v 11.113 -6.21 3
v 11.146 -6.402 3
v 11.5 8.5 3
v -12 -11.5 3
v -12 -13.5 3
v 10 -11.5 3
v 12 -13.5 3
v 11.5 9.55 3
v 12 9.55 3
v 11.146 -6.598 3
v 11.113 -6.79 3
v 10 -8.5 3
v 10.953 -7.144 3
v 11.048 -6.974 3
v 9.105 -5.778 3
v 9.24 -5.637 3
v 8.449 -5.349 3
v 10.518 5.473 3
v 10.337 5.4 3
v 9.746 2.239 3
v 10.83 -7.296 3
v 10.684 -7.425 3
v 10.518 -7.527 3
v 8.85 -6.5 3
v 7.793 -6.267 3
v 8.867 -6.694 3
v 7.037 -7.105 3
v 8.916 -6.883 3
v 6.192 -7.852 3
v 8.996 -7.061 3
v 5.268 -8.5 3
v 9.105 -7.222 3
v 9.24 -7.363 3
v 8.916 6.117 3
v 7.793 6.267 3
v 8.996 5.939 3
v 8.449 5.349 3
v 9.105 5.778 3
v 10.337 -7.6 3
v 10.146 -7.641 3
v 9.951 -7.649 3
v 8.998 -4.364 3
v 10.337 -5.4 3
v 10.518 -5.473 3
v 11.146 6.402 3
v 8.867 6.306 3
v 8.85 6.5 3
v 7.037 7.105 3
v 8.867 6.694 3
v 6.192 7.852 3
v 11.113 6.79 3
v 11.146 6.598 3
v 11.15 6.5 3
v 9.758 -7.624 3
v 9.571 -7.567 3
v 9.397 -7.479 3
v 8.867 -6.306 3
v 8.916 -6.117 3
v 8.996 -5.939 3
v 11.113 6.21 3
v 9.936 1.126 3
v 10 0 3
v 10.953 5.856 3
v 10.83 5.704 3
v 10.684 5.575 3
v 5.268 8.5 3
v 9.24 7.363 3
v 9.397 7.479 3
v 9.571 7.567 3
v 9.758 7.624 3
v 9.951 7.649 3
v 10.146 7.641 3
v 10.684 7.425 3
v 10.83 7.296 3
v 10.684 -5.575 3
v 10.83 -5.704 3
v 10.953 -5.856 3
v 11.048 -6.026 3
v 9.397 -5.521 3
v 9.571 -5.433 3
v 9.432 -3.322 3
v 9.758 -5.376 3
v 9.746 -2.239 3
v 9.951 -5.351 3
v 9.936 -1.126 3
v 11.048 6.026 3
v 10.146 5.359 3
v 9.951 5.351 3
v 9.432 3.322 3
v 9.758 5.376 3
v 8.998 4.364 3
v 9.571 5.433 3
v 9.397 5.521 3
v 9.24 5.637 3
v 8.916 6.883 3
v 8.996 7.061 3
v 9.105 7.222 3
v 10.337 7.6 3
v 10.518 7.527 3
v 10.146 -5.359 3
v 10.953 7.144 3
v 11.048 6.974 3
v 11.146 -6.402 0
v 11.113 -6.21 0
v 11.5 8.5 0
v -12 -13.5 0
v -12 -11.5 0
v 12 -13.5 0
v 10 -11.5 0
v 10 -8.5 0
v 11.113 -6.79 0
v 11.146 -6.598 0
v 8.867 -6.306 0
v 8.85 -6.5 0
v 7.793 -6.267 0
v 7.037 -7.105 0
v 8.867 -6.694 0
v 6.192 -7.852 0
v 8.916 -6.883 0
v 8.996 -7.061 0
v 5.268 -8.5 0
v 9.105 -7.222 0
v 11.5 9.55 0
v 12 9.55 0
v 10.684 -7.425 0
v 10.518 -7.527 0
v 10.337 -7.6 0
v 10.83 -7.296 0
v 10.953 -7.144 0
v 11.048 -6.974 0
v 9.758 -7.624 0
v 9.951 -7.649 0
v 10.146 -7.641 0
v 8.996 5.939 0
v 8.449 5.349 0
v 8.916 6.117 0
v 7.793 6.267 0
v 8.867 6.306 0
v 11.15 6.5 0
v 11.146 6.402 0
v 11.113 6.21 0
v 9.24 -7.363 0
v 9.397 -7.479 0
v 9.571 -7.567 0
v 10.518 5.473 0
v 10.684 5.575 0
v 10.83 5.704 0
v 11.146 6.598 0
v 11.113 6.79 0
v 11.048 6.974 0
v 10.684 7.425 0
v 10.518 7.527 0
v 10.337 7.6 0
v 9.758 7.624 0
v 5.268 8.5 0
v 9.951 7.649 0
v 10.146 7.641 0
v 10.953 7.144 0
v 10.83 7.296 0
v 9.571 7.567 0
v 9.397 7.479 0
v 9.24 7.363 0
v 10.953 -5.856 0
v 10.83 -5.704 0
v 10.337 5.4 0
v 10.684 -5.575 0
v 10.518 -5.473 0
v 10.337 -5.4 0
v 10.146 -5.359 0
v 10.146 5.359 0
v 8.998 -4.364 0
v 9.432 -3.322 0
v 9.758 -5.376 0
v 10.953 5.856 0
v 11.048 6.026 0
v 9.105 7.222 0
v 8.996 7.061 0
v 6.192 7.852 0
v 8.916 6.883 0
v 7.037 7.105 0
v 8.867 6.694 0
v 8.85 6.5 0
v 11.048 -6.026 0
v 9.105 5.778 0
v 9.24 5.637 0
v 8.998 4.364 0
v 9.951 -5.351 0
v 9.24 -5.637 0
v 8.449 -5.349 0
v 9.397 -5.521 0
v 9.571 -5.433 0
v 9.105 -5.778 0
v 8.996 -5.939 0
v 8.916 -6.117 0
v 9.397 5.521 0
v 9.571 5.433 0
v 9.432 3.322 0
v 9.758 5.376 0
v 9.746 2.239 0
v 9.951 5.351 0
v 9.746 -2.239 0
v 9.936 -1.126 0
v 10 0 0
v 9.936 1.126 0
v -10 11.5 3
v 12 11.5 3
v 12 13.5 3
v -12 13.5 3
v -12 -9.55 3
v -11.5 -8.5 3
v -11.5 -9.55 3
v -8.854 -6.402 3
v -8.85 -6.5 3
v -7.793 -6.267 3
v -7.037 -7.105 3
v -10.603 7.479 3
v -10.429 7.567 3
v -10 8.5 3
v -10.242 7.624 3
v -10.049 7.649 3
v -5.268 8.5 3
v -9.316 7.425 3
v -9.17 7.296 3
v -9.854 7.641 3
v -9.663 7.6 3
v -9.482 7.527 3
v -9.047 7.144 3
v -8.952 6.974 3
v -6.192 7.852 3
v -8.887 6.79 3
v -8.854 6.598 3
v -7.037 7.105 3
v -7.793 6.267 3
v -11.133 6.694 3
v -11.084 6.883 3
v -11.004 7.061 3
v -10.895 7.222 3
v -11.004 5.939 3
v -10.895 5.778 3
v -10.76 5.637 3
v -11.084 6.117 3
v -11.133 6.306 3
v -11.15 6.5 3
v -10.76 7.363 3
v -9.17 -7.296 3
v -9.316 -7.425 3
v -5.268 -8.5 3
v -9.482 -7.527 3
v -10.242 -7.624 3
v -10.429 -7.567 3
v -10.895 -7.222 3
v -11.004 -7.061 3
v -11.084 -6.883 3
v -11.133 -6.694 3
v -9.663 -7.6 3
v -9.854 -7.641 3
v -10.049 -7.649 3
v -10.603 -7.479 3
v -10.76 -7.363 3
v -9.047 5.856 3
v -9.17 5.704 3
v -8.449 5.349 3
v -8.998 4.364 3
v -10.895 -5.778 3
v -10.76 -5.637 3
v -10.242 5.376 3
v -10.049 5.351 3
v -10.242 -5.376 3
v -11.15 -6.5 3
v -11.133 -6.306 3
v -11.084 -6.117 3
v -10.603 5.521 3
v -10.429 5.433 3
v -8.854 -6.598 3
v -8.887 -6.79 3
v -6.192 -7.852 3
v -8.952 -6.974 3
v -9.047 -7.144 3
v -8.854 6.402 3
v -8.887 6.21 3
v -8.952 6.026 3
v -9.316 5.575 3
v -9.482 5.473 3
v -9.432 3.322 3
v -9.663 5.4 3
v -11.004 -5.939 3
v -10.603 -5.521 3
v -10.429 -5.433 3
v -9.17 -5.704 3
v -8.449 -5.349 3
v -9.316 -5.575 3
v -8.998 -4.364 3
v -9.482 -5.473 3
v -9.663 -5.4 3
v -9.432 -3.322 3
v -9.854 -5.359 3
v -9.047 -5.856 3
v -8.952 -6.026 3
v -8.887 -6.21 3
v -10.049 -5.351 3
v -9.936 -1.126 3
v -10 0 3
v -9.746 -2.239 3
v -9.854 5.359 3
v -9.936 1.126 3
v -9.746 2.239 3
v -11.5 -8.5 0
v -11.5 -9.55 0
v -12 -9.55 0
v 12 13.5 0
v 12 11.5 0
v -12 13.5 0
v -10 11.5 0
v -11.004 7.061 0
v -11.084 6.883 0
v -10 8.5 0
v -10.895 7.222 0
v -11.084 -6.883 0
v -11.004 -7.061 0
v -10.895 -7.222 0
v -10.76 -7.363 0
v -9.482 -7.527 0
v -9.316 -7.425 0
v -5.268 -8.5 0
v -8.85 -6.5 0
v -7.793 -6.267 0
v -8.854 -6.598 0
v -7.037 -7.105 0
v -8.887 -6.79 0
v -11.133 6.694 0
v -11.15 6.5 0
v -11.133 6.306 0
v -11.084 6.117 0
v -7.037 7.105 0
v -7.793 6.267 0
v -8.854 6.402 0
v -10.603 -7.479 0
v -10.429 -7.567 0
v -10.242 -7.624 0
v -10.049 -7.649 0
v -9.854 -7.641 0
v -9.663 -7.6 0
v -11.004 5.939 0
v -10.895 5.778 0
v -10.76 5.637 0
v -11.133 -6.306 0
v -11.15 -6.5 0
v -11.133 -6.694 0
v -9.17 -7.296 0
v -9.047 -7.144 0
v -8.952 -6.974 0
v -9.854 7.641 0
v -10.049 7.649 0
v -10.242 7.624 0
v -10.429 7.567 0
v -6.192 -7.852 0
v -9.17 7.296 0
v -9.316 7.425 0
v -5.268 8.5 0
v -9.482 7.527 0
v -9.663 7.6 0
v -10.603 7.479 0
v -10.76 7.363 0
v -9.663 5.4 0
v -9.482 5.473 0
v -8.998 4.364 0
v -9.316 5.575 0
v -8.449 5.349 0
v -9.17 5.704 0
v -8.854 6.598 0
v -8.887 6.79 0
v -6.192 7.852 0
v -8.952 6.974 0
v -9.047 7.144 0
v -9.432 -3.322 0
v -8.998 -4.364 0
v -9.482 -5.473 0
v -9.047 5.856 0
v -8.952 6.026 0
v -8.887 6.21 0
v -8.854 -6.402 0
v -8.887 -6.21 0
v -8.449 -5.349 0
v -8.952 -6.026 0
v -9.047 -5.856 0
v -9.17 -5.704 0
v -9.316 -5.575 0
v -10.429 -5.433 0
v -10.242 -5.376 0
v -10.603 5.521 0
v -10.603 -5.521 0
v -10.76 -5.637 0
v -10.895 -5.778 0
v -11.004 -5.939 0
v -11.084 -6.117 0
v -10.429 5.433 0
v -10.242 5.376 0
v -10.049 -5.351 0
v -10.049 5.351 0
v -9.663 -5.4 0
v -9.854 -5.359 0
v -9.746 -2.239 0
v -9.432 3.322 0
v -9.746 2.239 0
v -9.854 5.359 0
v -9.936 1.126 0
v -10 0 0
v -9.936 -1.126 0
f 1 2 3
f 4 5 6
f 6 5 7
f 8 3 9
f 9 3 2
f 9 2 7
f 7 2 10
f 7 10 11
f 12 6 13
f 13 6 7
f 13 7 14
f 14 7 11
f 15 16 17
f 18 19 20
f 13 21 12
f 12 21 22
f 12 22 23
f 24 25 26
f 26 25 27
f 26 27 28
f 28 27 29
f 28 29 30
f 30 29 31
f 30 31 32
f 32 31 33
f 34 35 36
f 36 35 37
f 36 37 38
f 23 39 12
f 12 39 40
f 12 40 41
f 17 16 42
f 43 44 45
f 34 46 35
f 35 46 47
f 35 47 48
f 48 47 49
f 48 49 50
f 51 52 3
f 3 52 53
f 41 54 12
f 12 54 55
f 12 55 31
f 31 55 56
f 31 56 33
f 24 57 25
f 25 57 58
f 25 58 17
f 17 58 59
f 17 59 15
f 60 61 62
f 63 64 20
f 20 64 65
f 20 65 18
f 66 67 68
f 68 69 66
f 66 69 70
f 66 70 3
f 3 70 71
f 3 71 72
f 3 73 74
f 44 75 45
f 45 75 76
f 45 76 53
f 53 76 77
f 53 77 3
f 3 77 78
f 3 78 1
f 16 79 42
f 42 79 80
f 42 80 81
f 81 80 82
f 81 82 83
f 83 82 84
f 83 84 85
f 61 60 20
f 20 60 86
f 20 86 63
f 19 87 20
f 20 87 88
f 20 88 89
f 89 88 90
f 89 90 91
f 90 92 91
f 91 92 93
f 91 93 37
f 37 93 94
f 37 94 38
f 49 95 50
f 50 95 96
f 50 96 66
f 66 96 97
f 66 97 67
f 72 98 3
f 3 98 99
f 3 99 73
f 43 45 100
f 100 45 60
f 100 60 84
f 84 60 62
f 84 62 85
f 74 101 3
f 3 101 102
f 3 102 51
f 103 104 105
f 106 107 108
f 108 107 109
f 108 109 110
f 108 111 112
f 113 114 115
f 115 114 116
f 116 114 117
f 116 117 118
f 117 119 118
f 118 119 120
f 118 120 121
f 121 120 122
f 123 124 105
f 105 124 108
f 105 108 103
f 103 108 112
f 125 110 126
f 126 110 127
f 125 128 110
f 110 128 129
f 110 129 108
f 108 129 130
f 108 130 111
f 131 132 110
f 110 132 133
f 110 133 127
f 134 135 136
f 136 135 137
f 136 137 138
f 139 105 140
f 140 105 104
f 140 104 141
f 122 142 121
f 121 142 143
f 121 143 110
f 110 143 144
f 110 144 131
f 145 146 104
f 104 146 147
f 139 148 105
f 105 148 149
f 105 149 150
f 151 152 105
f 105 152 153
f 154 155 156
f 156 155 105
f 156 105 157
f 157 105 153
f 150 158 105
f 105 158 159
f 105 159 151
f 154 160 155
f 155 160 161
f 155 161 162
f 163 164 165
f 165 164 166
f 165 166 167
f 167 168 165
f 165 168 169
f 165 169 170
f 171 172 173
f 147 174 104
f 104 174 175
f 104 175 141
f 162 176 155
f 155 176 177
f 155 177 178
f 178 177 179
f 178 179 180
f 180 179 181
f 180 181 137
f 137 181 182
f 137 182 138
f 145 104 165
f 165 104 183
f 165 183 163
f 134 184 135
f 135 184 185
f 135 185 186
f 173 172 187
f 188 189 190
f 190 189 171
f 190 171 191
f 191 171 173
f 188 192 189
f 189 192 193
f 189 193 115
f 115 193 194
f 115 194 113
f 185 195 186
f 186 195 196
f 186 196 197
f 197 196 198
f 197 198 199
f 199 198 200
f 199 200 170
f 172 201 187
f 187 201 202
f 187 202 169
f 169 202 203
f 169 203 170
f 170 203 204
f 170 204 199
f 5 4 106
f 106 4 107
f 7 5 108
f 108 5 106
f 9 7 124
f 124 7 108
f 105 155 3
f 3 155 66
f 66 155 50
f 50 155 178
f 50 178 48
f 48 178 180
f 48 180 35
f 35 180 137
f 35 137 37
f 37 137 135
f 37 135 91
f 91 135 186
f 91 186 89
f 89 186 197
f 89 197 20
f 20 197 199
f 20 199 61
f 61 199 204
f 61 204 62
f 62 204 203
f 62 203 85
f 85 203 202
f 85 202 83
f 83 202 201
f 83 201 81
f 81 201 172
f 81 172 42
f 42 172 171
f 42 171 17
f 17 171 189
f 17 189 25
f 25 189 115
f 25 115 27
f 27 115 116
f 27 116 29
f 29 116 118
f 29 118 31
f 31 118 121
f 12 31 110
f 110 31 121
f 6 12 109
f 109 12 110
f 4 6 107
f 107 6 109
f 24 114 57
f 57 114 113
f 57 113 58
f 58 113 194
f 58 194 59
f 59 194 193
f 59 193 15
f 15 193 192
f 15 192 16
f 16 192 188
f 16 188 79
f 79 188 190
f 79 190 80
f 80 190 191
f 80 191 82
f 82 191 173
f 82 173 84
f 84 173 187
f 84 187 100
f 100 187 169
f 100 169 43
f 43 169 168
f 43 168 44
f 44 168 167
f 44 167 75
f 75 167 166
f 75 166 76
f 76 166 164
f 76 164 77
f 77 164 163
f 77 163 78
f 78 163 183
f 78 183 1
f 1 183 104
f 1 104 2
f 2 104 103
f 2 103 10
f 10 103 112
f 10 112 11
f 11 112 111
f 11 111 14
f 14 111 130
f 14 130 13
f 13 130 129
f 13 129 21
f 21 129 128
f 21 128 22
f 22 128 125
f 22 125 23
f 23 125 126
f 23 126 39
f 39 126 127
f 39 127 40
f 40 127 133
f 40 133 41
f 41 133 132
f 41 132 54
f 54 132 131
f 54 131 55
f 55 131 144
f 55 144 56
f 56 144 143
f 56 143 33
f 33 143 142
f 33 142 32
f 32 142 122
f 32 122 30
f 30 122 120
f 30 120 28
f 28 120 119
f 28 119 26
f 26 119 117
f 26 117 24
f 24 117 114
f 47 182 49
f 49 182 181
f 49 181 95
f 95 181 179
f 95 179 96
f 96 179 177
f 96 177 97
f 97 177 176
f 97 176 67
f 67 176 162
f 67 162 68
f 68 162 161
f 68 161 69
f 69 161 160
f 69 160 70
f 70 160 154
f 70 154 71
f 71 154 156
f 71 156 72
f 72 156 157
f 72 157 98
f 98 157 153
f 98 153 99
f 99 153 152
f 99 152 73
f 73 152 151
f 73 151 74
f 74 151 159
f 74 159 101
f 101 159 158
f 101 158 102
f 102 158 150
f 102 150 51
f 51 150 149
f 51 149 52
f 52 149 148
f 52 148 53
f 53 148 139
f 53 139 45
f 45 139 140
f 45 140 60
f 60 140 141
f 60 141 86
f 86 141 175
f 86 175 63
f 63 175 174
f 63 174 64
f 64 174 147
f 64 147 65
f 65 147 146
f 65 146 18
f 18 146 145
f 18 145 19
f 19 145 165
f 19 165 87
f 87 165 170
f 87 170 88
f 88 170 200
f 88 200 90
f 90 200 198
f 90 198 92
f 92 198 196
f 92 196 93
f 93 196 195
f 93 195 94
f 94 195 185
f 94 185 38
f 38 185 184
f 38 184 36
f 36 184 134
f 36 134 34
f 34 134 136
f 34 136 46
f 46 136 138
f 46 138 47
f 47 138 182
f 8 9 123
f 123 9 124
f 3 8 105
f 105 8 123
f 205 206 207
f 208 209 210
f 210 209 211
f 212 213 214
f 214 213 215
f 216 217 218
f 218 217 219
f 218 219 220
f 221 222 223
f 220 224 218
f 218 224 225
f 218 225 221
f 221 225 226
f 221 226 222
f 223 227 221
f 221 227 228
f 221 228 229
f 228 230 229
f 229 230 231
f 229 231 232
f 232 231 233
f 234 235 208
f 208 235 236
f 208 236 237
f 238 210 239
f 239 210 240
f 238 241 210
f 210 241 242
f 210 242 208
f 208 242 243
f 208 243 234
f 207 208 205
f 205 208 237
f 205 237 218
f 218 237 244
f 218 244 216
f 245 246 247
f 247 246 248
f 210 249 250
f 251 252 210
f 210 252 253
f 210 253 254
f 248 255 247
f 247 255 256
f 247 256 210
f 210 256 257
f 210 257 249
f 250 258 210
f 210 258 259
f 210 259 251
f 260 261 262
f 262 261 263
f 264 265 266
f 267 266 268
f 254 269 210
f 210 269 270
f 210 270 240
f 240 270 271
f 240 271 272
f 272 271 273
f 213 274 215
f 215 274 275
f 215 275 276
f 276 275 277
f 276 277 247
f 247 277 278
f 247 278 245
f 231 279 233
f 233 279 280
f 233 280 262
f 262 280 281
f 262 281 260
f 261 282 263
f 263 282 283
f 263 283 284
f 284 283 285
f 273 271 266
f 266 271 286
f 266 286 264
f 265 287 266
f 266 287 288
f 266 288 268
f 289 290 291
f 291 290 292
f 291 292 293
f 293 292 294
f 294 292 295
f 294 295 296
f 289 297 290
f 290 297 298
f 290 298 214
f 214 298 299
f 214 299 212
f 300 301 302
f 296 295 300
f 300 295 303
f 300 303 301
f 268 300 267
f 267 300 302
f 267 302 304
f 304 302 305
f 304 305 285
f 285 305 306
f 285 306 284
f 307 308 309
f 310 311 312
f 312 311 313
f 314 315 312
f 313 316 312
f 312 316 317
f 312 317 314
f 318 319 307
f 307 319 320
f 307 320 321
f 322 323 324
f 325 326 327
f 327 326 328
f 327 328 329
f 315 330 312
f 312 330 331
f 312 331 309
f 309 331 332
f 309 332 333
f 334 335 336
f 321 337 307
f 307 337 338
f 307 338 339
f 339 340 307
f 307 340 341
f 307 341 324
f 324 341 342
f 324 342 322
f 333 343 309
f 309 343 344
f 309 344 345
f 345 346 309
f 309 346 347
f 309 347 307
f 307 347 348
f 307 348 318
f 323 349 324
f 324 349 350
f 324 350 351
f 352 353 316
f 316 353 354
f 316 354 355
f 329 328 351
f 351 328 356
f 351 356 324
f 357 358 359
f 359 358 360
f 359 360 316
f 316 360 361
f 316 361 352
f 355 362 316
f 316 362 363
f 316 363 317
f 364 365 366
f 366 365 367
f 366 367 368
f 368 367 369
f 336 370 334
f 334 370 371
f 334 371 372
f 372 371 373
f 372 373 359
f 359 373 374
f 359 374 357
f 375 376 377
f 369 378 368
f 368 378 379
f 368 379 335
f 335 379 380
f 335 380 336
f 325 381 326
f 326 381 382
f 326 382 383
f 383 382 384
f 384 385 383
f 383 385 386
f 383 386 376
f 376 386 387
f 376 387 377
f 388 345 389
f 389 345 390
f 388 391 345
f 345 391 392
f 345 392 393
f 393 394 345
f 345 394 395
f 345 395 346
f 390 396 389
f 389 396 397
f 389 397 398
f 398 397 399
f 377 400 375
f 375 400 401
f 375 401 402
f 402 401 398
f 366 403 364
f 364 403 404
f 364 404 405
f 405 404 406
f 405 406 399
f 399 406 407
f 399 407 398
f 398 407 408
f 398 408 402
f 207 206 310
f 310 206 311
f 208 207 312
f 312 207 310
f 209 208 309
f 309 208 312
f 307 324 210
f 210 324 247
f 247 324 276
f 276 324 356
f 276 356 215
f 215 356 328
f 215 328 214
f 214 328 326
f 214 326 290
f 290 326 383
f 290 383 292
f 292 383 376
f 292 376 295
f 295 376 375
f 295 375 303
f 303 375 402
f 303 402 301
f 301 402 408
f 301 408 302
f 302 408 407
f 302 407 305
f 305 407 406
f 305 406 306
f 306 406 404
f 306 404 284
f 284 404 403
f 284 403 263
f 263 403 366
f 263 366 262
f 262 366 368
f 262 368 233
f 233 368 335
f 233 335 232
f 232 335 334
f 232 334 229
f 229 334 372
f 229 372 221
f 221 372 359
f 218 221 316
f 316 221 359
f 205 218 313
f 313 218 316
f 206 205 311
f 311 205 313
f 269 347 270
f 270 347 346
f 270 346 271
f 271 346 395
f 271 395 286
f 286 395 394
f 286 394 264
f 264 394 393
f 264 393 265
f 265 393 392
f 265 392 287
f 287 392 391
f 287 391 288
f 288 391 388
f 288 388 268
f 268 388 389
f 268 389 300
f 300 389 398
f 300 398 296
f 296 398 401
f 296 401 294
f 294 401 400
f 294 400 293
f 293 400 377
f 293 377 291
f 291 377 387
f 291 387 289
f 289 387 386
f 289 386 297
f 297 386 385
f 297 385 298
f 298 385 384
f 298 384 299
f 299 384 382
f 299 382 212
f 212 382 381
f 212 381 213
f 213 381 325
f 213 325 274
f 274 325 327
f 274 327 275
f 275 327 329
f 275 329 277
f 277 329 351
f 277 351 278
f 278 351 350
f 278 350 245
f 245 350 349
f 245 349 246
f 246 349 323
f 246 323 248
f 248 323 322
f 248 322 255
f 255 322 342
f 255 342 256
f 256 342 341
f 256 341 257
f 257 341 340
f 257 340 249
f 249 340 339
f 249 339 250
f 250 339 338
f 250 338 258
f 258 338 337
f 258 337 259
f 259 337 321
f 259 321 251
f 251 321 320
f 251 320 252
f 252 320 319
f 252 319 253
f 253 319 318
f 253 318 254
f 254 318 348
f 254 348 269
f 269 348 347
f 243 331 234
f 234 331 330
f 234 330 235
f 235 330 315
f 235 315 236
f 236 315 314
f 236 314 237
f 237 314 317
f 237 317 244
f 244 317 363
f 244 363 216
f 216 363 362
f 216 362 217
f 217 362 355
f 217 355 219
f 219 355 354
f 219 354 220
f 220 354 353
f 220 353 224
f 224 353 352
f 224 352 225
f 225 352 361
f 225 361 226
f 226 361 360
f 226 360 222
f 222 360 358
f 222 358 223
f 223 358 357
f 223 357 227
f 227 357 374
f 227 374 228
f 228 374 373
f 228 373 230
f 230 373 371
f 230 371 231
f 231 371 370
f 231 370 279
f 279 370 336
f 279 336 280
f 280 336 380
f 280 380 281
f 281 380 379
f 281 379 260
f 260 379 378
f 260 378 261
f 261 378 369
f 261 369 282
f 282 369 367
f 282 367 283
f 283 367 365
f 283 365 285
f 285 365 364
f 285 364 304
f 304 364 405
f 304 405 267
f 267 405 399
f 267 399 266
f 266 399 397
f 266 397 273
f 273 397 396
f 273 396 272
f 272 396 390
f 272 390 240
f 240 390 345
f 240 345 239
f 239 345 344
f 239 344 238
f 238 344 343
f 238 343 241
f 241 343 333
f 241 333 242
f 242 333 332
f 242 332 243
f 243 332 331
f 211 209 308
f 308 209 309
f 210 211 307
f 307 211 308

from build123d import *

# Parameters (mm, degrees)
SKETCH2_R             = 1.15
BOSS_EXTRUDE1_DEPTH   = 3
BOSS_EXTRUDE1_2_DEPTH = 3
SKETCH3_W             = 0.5
SKETCH3_H             = 1.05
BOSS_EXTRUDE3_DEPTH   = 3


with BuildPart() as part:
    # Sketch2 → Boss-Extrude1 (new body)
    with BuildSketch(Plane.XY):
        with BuildLine():
            Line((-12, -8.5), (-5.267826876, -8.5))
            ThreePointArc((-5.267826876, -8.5), (-10, 0), (-5.267826876, 8.5))
            Line((-5.267826876, 8.5), (-10, 8.5))
            Line((-10, 8.5), (-10, 11.5))
            Line((-10, 11.5), (12, 11.5))
            Line((12, 11.5), (12, 13.5))
            Line((12, 13.5), (-12, 13.5))
            Line((-12, 13.5), (-12, -8.5))
        make_face()
        with Locations((-10, -6.5)):
            Circle(SKETCH2_R, mode=Mode.SUBTRACT)
        with Locations((-10, 6.5)):
            Circle(SKETCH2_R, mode=Mode.SUBTRACT)
    extrude(amount=BOSS_EXTRUDE1_DEPTH)



with BuildPart() as body_2:
    # Sketch2 → Boss-Extrude1 2 (new body)
    with BuildSketch(Plane.XY):
        with BuildLine():
            Line((-12, -13.5), (12, -13.5))
            Line((12, -13.5), (12, 8.5))
            Line((12, 8.5), (5.267826876, 8.5))
            ThreePointArc((5.267826876, 8.5), (10, 0), (5.267826876, -8.5))
            Line((5.267826876, -8.5), (10, -8.5))
            Line((10, -8.5), (10, -11.5))
            Line((10, -11.5), (-12, -11.5))
            Line((-12, -11.5), (-12, -13.5))
        make_face()
        with Locations((10, 6.5)):
            Circle(SKETCH2_R, mode=Mode.SUBTRACT)
        with Locations((10, -6.5)):
            Circle(SKETCH2_R, mode=Mode.SUBTRACT)
    extrude(amount=BOSS_EXTRUDE1_2_DEPTH)


with BuildPart() as part_1:
    add(part.part)

    add(body_2.part)  # Boss-Extrude3 merges body 2
    # Sketch3 → Boss-Extrude3 (add)
    with BuildSketch(Plane.XY):
        with Locations((11.75, 9.025)):
            Rectangle(SKETCH3_W, SKETCH3_H)
        with Locations((-11.75, -9.025)):
            Rectangle(SKETCH3_W, SKETCH3_H)
    extrude(amount=BOSS_EXTRUDE3_DEPTH)


solid = part_1.part
